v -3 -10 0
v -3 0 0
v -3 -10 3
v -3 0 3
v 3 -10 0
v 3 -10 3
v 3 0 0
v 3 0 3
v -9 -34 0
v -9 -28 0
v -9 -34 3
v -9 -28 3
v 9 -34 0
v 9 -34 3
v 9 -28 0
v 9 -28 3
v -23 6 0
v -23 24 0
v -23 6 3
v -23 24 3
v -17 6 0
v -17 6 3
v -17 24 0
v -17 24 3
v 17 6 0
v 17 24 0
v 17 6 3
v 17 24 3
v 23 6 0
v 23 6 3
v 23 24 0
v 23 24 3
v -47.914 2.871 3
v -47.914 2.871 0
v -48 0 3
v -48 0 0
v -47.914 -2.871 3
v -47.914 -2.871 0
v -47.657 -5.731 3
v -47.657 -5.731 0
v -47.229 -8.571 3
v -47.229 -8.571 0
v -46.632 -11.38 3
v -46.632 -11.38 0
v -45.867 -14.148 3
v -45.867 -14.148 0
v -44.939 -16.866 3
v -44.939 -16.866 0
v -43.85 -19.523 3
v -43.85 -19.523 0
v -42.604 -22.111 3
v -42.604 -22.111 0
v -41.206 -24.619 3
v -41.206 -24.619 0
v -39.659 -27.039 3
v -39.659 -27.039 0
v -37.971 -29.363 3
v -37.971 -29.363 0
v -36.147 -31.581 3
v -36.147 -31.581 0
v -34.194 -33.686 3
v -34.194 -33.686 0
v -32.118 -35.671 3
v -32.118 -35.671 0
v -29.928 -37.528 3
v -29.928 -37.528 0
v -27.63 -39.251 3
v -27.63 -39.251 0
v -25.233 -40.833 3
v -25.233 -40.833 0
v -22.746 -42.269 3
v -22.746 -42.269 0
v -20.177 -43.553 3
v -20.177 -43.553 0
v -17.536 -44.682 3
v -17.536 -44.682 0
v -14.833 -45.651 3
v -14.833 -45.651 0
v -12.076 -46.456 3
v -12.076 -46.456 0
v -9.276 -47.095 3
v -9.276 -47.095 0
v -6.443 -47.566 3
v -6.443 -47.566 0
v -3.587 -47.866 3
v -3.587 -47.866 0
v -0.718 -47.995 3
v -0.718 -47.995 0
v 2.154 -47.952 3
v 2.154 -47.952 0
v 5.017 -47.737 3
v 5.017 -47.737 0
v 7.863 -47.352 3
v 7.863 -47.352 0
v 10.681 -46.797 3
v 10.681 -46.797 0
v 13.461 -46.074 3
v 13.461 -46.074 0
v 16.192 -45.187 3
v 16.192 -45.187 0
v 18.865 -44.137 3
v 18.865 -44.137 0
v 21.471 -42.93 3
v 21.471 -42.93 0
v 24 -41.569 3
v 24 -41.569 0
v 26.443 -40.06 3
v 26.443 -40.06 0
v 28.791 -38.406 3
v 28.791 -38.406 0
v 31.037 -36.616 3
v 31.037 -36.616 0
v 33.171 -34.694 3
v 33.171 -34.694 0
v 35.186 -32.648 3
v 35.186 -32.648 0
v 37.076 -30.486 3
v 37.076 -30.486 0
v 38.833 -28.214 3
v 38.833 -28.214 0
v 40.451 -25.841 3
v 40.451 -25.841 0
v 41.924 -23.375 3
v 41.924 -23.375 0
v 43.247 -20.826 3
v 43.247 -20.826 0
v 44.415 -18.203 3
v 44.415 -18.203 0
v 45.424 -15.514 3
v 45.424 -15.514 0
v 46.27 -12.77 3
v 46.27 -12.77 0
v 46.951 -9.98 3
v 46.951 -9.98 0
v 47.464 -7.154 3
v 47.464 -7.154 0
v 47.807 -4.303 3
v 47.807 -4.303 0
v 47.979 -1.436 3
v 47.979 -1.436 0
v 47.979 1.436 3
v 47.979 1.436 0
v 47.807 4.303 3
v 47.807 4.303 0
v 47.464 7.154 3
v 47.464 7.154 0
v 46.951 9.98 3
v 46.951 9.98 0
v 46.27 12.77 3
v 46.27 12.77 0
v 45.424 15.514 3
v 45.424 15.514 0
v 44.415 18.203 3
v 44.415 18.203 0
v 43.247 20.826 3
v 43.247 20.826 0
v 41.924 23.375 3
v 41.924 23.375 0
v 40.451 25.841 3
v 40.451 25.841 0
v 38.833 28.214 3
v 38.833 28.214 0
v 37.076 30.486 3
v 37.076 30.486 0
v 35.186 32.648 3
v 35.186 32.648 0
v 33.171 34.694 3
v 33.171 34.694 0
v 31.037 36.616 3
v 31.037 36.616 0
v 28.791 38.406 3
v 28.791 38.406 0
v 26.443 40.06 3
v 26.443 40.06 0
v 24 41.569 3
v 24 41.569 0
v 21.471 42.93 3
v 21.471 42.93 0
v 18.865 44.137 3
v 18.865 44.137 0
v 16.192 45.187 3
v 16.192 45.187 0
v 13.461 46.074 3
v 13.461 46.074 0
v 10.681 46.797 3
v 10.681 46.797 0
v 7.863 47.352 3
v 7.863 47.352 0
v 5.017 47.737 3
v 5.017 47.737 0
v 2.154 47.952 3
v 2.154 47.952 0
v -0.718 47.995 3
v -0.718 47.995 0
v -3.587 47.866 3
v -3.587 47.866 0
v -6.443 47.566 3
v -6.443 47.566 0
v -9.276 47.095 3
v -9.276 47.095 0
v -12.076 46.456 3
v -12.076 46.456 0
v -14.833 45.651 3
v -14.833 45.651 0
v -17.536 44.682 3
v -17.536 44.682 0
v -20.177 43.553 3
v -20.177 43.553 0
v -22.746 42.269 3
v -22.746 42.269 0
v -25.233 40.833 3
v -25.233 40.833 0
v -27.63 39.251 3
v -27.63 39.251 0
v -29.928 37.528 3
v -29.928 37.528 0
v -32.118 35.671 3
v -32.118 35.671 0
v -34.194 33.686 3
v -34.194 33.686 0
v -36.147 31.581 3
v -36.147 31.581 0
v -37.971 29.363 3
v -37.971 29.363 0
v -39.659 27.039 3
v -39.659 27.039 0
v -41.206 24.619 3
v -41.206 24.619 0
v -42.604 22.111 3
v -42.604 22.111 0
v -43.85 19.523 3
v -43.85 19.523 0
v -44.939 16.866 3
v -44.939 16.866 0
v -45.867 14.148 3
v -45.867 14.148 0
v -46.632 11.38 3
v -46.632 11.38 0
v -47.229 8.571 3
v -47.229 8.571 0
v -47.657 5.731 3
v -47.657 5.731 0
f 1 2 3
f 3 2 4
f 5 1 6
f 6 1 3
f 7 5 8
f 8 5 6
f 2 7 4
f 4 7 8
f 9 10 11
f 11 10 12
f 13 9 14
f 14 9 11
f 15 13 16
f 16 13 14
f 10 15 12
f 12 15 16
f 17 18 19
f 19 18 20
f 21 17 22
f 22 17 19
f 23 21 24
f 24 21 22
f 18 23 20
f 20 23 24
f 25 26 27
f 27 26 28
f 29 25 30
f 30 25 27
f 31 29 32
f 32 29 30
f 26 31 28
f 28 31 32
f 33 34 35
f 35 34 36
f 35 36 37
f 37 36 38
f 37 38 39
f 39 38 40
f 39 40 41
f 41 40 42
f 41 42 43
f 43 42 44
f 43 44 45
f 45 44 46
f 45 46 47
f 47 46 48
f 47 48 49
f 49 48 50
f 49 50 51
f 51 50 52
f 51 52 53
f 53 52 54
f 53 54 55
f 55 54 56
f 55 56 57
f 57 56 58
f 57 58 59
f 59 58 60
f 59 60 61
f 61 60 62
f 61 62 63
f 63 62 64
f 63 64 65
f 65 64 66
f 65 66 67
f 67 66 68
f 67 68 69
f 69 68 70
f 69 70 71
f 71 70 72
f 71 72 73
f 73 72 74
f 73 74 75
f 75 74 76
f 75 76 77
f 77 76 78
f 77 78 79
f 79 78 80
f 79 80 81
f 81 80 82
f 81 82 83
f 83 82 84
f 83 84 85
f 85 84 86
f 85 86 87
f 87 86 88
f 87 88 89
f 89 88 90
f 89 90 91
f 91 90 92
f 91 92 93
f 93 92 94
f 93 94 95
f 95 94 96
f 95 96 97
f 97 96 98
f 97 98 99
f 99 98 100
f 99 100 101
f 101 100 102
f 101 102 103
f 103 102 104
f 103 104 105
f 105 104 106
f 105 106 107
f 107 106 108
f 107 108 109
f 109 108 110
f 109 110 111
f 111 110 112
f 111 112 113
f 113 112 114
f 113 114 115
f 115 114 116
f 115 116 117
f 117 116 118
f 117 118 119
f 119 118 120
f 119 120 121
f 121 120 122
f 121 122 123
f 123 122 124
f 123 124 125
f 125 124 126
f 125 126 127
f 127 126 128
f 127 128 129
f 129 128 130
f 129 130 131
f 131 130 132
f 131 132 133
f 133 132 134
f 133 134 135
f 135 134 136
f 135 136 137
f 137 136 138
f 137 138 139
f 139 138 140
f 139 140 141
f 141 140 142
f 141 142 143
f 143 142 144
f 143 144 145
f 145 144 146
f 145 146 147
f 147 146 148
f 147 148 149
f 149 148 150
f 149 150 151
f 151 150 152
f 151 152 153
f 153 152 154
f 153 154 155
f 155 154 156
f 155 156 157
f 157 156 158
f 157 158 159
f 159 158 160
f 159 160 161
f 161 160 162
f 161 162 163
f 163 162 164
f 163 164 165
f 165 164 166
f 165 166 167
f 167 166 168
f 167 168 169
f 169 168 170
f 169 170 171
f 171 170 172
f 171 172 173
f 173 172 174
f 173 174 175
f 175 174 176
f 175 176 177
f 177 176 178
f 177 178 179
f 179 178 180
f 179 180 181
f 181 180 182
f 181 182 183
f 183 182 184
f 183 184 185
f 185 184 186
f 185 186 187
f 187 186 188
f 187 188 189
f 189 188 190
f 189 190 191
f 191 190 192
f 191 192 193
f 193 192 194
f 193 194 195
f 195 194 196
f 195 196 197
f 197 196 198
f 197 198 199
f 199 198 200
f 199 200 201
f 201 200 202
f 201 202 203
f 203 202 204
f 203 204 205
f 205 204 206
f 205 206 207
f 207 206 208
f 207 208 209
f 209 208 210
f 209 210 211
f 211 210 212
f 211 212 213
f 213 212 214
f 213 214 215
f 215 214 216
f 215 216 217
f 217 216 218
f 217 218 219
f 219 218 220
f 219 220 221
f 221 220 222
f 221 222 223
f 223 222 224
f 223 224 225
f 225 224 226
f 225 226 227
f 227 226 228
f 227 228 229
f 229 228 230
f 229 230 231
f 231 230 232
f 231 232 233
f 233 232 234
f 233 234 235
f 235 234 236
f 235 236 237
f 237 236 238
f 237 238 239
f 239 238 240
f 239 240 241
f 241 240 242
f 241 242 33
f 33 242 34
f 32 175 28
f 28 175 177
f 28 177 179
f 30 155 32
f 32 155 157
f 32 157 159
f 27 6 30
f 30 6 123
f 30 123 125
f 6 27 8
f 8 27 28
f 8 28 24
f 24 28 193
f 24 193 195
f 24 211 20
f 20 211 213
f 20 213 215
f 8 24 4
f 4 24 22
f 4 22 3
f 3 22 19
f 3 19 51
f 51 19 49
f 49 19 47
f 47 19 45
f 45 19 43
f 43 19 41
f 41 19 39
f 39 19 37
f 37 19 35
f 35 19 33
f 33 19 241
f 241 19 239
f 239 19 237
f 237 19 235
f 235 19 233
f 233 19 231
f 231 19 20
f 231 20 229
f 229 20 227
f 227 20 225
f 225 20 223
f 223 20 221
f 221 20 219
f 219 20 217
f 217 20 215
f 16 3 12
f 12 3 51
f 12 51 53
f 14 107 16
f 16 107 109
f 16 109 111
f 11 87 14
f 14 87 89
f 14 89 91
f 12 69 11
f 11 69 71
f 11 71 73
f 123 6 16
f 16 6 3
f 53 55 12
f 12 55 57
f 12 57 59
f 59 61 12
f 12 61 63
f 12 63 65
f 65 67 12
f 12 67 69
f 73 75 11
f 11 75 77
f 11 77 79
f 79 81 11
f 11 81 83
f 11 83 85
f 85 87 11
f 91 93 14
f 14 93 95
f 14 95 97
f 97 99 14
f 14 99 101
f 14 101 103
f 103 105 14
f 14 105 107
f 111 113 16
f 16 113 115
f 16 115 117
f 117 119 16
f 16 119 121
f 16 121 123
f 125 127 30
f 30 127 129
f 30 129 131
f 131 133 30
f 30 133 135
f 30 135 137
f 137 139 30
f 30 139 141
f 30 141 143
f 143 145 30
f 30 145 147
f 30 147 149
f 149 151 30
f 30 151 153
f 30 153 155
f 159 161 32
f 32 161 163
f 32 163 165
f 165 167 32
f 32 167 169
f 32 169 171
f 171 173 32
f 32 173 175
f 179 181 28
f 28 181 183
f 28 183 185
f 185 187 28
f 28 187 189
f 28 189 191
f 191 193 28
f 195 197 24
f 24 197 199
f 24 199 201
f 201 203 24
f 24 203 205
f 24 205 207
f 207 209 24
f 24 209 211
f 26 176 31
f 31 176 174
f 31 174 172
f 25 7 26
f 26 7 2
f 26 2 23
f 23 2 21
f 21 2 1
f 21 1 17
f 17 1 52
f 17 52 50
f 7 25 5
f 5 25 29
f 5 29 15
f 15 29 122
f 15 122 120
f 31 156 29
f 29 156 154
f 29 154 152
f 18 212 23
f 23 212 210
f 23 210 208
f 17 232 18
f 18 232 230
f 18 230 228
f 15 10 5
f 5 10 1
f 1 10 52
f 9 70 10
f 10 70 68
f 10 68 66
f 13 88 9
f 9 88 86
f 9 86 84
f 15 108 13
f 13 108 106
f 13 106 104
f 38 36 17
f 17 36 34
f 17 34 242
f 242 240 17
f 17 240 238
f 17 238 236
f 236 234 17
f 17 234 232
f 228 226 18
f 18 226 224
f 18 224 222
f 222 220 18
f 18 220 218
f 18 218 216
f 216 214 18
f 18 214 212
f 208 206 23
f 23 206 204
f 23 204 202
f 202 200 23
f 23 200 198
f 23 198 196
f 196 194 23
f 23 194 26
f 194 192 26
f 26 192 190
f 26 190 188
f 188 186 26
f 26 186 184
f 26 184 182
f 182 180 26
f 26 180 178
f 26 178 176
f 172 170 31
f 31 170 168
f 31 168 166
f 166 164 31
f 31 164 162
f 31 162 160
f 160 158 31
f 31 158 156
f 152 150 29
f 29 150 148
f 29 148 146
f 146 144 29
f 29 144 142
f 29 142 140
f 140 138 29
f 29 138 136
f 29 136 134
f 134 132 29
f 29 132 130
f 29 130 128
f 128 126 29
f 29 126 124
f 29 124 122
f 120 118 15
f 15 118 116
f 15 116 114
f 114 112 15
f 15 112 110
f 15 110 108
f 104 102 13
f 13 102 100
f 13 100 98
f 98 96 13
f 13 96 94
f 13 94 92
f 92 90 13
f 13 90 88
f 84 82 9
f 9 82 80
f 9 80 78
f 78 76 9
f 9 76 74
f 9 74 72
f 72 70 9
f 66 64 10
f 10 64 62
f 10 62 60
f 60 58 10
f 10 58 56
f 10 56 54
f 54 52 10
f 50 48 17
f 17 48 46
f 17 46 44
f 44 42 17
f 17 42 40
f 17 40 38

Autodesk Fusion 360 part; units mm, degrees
sketch "Sketch1" plane through (0, 0, 0) normal (0, 0, 1) x (1, 0, 0)
  circle A0 centre (0, 0) radius 48
  line L0 (9, -34) -> (-9, -34)
  line L1 (-9, -34) -> (-9, -28)
  line L2 (-9, -28) -> (9, -28)
  line L3 (9, -28) -> (9, -34)
  line L4 (9, -34) -> (-9, -28) construction
  line L5 (-9, -34) -> (9, -28) construction
  line L6 (3, -10) -> (-3, -10)
  line L7 (-3, -10) -> (-3, 0)
  line L8 (-3, 0) -> (3, 0)
  line L9 (3, 0) -> (3, -10)
  line L10 (3, -10) -> (-3, 0) construction
  line L11 (-3, -10) -> (3, 0) construction
  line L12 (-17, 6) -> (-23, 6)
  line L13 (-23, 6) -> (-23, 24)
  line L14 (-23, 24) -> (-17, 24)
  line L15 (-17, 24) -> (-17, 6)
  line L16 (-17, 6) -> (-23, 24) construction
  line L17 (-23, 6) -> (-17, 24) construction
  line L18 (23, 6) -> (17, 6)
  line L19 (17, 6) -> (17, 24)
  line L20 (17, 24) -> (23, 24)
  line L21 (23, 24) -> (23, 6)
  line L22 (23, 6) -> (17, 24) construction
  line L23 (17, 6) -> (23, 24) construction
  line L24 (0, -48) -> (0, 48) construction
  line L25 (-20, 15) -> (20, 15) construction
  point P0 (0, -31)
  point P1 (-20, 15)
  point P2 (0, -5)
  point P3 (20, 15)
  point P4 (0, -31)
  point P5 (0, -5)
  point P6 (-20, 15)
  point P7 (20, 15)
  point P8 (0, 15)
  dimension "d1" = 96
  dimension "d2" = 18
  dimension "d3" = 6
  dimension "d4" = 10
  dimension "d5" = 6
  dimension "d6" = 18
  dimension "d7" = 6
  dimension "d8" = 18
  dimension "d9" = 6
  dimension "d12" = 31
  dimension "d13" = 40
  dimension "d14" = 15
extrude "Extrude3" add sketch "Sketch1" along normal blind 3
